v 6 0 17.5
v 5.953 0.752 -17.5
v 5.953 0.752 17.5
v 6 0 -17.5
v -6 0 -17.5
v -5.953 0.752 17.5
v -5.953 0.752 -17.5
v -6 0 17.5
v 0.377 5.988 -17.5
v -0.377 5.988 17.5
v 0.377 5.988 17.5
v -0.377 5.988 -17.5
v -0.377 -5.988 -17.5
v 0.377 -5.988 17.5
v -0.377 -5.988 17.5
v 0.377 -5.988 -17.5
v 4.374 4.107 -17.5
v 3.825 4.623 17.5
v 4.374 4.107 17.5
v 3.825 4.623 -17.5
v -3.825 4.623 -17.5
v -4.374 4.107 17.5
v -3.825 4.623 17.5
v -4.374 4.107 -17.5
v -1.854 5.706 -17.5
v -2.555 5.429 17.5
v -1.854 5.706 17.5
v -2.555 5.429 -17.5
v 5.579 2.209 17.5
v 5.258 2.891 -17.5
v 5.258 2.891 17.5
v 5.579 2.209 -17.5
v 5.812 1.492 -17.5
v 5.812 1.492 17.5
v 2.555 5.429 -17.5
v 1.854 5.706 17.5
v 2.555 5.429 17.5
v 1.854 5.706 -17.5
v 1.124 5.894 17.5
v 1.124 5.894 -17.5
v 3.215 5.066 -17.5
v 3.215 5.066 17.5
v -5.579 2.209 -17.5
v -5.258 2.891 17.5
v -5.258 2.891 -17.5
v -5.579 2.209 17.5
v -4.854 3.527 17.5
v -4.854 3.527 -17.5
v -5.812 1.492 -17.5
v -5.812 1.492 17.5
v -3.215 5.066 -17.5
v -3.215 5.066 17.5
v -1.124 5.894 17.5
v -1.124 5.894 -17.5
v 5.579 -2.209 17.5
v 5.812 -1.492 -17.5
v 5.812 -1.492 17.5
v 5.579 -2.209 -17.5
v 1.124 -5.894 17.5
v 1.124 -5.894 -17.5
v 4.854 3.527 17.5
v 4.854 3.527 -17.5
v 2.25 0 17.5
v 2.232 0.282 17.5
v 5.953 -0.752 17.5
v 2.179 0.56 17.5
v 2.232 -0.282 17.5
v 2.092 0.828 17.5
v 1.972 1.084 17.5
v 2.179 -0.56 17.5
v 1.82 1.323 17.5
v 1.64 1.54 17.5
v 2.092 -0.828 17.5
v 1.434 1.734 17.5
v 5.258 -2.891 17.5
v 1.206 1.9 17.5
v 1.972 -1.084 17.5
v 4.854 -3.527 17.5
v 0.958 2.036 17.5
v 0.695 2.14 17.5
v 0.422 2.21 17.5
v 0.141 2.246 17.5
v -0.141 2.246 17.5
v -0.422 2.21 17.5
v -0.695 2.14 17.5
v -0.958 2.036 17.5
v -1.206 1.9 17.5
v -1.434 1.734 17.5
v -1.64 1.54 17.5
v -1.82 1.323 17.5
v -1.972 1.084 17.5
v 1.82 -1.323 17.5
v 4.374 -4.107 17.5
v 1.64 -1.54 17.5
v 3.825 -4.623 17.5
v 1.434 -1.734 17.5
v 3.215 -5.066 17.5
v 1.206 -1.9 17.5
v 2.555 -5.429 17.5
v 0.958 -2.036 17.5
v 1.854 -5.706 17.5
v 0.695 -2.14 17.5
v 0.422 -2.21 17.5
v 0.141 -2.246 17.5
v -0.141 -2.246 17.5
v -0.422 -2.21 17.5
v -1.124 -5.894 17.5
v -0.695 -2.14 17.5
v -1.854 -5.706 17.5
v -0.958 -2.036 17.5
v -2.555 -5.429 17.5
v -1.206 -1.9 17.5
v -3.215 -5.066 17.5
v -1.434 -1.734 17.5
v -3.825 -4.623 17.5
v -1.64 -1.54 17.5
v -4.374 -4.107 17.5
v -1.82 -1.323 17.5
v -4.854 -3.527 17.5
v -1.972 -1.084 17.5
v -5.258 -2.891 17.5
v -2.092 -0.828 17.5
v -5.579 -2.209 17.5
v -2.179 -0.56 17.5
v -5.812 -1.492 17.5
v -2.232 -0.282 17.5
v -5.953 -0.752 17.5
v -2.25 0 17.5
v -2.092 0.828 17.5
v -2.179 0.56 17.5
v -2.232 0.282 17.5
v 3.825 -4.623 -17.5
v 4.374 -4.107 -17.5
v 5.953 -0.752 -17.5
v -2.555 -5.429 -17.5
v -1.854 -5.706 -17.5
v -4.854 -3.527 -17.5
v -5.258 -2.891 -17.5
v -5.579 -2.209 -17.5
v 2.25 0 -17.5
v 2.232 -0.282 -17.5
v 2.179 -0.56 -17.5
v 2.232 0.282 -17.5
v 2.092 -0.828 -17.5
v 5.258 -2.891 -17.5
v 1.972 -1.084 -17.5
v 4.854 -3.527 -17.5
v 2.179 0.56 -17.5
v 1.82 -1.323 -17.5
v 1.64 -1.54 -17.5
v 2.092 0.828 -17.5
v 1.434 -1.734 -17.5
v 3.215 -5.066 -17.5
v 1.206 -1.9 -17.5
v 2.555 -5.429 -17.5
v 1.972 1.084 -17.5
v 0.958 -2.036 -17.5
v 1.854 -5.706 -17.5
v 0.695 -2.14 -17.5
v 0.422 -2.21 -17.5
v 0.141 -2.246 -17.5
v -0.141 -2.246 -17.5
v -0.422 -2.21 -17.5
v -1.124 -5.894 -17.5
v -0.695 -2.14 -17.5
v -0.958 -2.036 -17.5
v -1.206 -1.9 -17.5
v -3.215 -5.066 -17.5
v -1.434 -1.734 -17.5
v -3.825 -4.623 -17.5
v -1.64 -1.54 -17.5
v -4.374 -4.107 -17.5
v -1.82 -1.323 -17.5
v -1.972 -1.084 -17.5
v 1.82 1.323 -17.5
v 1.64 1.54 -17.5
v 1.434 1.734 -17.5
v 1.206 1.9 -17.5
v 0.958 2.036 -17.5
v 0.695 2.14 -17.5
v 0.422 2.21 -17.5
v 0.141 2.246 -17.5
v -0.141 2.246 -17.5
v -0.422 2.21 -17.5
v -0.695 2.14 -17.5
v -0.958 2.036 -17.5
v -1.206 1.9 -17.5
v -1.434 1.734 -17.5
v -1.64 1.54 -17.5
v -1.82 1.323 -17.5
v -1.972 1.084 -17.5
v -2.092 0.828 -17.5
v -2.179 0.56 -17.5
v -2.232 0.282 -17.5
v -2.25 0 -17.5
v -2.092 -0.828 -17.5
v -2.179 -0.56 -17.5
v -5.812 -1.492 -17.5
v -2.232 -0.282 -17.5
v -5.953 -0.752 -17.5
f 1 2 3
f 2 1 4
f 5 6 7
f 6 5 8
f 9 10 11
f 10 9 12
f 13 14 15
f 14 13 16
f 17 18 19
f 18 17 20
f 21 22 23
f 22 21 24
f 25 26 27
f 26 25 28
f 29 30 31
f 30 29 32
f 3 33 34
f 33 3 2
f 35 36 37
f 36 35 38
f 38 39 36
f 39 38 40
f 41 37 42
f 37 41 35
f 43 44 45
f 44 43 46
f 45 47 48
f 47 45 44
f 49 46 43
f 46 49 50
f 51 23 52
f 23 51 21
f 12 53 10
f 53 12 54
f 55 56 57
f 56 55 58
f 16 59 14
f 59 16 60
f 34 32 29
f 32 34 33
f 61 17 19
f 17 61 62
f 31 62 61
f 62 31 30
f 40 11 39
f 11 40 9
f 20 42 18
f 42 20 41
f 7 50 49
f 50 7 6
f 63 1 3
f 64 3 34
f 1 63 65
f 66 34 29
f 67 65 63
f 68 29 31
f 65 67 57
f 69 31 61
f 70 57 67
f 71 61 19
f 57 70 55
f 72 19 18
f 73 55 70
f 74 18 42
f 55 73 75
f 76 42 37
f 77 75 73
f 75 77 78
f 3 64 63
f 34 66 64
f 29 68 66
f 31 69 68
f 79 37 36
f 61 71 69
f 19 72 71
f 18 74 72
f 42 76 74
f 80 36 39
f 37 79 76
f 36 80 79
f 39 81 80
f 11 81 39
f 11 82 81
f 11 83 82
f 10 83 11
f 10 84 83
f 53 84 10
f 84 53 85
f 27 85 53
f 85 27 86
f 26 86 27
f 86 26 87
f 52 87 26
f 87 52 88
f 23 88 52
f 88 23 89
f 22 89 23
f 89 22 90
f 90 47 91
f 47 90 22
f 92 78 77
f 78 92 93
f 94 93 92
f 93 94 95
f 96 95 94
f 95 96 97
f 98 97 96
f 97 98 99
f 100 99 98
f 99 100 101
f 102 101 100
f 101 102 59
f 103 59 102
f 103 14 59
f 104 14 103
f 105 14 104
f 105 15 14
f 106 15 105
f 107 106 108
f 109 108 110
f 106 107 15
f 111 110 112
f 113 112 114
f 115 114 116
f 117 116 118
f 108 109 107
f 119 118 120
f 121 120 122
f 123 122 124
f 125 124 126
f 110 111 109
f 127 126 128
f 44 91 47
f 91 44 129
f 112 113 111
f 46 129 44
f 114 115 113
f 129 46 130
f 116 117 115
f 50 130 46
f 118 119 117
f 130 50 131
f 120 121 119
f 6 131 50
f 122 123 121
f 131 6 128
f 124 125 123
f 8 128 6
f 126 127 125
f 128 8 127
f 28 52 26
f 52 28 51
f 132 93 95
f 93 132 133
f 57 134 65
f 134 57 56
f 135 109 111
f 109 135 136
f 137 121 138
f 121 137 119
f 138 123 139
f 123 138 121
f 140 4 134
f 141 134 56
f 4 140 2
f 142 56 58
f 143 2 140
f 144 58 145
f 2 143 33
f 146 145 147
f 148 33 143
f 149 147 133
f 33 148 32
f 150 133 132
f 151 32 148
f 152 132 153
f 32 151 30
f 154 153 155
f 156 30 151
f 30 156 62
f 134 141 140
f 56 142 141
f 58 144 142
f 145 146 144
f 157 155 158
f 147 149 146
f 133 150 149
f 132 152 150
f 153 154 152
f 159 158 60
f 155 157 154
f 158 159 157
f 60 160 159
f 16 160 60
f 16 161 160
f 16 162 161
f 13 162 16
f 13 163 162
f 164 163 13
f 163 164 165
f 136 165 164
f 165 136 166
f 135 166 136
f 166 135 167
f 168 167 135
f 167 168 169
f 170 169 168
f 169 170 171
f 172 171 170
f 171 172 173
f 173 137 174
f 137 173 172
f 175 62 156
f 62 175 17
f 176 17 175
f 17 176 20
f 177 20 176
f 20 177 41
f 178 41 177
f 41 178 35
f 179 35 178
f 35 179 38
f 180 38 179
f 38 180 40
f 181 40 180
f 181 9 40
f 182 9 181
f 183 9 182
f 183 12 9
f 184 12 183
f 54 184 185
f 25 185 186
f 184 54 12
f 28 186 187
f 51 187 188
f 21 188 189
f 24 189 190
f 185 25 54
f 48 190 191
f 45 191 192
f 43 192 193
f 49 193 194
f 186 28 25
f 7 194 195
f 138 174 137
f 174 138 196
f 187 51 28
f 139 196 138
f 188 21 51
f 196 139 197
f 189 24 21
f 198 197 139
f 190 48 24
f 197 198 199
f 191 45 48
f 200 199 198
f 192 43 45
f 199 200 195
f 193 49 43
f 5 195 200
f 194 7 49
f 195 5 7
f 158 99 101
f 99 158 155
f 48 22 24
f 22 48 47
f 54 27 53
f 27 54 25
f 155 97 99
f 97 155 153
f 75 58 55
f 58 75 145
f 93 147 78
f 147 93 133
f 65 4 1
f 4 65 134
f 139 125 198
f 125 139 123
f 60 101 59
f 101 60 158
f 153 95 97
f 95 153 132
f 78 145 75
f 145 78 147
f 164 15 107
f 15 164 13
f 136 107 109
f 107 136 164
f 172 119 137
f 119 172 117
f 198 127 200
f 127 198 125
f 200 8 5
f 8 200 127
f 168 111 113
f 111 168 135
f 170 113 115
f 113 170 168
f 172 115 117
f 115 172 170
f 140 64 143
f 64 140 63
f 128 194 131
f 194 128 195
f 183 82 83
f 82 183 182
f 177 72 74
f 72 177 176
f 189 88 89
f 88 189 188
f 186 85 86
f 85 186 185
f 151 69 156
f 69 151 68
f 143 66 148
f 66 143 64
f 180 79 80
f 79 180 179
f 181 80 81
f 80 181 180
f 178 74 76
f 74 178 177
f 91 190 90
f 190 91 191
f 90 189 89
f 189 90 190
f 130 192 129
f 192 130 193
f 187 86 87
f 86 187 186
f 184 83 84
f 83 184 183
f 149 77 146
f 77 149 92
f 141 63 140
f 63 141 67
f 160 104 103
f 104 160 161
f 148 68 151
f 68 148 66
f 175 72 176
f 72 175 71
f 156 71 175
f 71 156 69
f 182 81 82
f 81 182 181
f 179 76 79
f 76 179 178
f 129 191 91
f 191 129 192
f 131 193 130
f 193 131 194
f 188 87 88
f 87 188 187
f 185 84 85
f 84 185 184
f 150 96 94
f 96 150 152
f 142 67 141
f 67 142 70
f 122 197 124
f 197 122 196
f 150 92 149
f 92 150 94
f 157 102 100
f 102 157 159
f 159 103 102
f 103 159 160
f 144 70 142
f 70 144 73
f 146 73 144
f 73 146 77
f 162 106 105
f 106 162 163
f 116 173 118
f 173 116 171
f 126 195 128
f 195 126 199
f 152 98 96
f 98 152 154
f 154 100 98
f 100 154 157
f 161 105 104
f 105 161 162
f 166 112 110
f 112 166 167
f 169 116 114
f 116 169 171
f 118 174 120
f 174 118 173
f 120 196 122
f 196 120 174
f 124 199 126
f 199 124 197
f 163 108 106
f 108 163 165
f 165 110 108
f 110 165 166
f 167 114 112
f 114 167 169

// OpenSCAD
$fn = 50;


difference() {
	union() {
		translate(v = [0, 0, -17.5000000000]) {
			cylinder(h = 35, r = 6.0000000000);
		}
	}
	union() {
		translate(v = [0, 0, -100.0000000000]) {
			cylinder(h = 200, r = 2.2500000000);
		}
	}
}
